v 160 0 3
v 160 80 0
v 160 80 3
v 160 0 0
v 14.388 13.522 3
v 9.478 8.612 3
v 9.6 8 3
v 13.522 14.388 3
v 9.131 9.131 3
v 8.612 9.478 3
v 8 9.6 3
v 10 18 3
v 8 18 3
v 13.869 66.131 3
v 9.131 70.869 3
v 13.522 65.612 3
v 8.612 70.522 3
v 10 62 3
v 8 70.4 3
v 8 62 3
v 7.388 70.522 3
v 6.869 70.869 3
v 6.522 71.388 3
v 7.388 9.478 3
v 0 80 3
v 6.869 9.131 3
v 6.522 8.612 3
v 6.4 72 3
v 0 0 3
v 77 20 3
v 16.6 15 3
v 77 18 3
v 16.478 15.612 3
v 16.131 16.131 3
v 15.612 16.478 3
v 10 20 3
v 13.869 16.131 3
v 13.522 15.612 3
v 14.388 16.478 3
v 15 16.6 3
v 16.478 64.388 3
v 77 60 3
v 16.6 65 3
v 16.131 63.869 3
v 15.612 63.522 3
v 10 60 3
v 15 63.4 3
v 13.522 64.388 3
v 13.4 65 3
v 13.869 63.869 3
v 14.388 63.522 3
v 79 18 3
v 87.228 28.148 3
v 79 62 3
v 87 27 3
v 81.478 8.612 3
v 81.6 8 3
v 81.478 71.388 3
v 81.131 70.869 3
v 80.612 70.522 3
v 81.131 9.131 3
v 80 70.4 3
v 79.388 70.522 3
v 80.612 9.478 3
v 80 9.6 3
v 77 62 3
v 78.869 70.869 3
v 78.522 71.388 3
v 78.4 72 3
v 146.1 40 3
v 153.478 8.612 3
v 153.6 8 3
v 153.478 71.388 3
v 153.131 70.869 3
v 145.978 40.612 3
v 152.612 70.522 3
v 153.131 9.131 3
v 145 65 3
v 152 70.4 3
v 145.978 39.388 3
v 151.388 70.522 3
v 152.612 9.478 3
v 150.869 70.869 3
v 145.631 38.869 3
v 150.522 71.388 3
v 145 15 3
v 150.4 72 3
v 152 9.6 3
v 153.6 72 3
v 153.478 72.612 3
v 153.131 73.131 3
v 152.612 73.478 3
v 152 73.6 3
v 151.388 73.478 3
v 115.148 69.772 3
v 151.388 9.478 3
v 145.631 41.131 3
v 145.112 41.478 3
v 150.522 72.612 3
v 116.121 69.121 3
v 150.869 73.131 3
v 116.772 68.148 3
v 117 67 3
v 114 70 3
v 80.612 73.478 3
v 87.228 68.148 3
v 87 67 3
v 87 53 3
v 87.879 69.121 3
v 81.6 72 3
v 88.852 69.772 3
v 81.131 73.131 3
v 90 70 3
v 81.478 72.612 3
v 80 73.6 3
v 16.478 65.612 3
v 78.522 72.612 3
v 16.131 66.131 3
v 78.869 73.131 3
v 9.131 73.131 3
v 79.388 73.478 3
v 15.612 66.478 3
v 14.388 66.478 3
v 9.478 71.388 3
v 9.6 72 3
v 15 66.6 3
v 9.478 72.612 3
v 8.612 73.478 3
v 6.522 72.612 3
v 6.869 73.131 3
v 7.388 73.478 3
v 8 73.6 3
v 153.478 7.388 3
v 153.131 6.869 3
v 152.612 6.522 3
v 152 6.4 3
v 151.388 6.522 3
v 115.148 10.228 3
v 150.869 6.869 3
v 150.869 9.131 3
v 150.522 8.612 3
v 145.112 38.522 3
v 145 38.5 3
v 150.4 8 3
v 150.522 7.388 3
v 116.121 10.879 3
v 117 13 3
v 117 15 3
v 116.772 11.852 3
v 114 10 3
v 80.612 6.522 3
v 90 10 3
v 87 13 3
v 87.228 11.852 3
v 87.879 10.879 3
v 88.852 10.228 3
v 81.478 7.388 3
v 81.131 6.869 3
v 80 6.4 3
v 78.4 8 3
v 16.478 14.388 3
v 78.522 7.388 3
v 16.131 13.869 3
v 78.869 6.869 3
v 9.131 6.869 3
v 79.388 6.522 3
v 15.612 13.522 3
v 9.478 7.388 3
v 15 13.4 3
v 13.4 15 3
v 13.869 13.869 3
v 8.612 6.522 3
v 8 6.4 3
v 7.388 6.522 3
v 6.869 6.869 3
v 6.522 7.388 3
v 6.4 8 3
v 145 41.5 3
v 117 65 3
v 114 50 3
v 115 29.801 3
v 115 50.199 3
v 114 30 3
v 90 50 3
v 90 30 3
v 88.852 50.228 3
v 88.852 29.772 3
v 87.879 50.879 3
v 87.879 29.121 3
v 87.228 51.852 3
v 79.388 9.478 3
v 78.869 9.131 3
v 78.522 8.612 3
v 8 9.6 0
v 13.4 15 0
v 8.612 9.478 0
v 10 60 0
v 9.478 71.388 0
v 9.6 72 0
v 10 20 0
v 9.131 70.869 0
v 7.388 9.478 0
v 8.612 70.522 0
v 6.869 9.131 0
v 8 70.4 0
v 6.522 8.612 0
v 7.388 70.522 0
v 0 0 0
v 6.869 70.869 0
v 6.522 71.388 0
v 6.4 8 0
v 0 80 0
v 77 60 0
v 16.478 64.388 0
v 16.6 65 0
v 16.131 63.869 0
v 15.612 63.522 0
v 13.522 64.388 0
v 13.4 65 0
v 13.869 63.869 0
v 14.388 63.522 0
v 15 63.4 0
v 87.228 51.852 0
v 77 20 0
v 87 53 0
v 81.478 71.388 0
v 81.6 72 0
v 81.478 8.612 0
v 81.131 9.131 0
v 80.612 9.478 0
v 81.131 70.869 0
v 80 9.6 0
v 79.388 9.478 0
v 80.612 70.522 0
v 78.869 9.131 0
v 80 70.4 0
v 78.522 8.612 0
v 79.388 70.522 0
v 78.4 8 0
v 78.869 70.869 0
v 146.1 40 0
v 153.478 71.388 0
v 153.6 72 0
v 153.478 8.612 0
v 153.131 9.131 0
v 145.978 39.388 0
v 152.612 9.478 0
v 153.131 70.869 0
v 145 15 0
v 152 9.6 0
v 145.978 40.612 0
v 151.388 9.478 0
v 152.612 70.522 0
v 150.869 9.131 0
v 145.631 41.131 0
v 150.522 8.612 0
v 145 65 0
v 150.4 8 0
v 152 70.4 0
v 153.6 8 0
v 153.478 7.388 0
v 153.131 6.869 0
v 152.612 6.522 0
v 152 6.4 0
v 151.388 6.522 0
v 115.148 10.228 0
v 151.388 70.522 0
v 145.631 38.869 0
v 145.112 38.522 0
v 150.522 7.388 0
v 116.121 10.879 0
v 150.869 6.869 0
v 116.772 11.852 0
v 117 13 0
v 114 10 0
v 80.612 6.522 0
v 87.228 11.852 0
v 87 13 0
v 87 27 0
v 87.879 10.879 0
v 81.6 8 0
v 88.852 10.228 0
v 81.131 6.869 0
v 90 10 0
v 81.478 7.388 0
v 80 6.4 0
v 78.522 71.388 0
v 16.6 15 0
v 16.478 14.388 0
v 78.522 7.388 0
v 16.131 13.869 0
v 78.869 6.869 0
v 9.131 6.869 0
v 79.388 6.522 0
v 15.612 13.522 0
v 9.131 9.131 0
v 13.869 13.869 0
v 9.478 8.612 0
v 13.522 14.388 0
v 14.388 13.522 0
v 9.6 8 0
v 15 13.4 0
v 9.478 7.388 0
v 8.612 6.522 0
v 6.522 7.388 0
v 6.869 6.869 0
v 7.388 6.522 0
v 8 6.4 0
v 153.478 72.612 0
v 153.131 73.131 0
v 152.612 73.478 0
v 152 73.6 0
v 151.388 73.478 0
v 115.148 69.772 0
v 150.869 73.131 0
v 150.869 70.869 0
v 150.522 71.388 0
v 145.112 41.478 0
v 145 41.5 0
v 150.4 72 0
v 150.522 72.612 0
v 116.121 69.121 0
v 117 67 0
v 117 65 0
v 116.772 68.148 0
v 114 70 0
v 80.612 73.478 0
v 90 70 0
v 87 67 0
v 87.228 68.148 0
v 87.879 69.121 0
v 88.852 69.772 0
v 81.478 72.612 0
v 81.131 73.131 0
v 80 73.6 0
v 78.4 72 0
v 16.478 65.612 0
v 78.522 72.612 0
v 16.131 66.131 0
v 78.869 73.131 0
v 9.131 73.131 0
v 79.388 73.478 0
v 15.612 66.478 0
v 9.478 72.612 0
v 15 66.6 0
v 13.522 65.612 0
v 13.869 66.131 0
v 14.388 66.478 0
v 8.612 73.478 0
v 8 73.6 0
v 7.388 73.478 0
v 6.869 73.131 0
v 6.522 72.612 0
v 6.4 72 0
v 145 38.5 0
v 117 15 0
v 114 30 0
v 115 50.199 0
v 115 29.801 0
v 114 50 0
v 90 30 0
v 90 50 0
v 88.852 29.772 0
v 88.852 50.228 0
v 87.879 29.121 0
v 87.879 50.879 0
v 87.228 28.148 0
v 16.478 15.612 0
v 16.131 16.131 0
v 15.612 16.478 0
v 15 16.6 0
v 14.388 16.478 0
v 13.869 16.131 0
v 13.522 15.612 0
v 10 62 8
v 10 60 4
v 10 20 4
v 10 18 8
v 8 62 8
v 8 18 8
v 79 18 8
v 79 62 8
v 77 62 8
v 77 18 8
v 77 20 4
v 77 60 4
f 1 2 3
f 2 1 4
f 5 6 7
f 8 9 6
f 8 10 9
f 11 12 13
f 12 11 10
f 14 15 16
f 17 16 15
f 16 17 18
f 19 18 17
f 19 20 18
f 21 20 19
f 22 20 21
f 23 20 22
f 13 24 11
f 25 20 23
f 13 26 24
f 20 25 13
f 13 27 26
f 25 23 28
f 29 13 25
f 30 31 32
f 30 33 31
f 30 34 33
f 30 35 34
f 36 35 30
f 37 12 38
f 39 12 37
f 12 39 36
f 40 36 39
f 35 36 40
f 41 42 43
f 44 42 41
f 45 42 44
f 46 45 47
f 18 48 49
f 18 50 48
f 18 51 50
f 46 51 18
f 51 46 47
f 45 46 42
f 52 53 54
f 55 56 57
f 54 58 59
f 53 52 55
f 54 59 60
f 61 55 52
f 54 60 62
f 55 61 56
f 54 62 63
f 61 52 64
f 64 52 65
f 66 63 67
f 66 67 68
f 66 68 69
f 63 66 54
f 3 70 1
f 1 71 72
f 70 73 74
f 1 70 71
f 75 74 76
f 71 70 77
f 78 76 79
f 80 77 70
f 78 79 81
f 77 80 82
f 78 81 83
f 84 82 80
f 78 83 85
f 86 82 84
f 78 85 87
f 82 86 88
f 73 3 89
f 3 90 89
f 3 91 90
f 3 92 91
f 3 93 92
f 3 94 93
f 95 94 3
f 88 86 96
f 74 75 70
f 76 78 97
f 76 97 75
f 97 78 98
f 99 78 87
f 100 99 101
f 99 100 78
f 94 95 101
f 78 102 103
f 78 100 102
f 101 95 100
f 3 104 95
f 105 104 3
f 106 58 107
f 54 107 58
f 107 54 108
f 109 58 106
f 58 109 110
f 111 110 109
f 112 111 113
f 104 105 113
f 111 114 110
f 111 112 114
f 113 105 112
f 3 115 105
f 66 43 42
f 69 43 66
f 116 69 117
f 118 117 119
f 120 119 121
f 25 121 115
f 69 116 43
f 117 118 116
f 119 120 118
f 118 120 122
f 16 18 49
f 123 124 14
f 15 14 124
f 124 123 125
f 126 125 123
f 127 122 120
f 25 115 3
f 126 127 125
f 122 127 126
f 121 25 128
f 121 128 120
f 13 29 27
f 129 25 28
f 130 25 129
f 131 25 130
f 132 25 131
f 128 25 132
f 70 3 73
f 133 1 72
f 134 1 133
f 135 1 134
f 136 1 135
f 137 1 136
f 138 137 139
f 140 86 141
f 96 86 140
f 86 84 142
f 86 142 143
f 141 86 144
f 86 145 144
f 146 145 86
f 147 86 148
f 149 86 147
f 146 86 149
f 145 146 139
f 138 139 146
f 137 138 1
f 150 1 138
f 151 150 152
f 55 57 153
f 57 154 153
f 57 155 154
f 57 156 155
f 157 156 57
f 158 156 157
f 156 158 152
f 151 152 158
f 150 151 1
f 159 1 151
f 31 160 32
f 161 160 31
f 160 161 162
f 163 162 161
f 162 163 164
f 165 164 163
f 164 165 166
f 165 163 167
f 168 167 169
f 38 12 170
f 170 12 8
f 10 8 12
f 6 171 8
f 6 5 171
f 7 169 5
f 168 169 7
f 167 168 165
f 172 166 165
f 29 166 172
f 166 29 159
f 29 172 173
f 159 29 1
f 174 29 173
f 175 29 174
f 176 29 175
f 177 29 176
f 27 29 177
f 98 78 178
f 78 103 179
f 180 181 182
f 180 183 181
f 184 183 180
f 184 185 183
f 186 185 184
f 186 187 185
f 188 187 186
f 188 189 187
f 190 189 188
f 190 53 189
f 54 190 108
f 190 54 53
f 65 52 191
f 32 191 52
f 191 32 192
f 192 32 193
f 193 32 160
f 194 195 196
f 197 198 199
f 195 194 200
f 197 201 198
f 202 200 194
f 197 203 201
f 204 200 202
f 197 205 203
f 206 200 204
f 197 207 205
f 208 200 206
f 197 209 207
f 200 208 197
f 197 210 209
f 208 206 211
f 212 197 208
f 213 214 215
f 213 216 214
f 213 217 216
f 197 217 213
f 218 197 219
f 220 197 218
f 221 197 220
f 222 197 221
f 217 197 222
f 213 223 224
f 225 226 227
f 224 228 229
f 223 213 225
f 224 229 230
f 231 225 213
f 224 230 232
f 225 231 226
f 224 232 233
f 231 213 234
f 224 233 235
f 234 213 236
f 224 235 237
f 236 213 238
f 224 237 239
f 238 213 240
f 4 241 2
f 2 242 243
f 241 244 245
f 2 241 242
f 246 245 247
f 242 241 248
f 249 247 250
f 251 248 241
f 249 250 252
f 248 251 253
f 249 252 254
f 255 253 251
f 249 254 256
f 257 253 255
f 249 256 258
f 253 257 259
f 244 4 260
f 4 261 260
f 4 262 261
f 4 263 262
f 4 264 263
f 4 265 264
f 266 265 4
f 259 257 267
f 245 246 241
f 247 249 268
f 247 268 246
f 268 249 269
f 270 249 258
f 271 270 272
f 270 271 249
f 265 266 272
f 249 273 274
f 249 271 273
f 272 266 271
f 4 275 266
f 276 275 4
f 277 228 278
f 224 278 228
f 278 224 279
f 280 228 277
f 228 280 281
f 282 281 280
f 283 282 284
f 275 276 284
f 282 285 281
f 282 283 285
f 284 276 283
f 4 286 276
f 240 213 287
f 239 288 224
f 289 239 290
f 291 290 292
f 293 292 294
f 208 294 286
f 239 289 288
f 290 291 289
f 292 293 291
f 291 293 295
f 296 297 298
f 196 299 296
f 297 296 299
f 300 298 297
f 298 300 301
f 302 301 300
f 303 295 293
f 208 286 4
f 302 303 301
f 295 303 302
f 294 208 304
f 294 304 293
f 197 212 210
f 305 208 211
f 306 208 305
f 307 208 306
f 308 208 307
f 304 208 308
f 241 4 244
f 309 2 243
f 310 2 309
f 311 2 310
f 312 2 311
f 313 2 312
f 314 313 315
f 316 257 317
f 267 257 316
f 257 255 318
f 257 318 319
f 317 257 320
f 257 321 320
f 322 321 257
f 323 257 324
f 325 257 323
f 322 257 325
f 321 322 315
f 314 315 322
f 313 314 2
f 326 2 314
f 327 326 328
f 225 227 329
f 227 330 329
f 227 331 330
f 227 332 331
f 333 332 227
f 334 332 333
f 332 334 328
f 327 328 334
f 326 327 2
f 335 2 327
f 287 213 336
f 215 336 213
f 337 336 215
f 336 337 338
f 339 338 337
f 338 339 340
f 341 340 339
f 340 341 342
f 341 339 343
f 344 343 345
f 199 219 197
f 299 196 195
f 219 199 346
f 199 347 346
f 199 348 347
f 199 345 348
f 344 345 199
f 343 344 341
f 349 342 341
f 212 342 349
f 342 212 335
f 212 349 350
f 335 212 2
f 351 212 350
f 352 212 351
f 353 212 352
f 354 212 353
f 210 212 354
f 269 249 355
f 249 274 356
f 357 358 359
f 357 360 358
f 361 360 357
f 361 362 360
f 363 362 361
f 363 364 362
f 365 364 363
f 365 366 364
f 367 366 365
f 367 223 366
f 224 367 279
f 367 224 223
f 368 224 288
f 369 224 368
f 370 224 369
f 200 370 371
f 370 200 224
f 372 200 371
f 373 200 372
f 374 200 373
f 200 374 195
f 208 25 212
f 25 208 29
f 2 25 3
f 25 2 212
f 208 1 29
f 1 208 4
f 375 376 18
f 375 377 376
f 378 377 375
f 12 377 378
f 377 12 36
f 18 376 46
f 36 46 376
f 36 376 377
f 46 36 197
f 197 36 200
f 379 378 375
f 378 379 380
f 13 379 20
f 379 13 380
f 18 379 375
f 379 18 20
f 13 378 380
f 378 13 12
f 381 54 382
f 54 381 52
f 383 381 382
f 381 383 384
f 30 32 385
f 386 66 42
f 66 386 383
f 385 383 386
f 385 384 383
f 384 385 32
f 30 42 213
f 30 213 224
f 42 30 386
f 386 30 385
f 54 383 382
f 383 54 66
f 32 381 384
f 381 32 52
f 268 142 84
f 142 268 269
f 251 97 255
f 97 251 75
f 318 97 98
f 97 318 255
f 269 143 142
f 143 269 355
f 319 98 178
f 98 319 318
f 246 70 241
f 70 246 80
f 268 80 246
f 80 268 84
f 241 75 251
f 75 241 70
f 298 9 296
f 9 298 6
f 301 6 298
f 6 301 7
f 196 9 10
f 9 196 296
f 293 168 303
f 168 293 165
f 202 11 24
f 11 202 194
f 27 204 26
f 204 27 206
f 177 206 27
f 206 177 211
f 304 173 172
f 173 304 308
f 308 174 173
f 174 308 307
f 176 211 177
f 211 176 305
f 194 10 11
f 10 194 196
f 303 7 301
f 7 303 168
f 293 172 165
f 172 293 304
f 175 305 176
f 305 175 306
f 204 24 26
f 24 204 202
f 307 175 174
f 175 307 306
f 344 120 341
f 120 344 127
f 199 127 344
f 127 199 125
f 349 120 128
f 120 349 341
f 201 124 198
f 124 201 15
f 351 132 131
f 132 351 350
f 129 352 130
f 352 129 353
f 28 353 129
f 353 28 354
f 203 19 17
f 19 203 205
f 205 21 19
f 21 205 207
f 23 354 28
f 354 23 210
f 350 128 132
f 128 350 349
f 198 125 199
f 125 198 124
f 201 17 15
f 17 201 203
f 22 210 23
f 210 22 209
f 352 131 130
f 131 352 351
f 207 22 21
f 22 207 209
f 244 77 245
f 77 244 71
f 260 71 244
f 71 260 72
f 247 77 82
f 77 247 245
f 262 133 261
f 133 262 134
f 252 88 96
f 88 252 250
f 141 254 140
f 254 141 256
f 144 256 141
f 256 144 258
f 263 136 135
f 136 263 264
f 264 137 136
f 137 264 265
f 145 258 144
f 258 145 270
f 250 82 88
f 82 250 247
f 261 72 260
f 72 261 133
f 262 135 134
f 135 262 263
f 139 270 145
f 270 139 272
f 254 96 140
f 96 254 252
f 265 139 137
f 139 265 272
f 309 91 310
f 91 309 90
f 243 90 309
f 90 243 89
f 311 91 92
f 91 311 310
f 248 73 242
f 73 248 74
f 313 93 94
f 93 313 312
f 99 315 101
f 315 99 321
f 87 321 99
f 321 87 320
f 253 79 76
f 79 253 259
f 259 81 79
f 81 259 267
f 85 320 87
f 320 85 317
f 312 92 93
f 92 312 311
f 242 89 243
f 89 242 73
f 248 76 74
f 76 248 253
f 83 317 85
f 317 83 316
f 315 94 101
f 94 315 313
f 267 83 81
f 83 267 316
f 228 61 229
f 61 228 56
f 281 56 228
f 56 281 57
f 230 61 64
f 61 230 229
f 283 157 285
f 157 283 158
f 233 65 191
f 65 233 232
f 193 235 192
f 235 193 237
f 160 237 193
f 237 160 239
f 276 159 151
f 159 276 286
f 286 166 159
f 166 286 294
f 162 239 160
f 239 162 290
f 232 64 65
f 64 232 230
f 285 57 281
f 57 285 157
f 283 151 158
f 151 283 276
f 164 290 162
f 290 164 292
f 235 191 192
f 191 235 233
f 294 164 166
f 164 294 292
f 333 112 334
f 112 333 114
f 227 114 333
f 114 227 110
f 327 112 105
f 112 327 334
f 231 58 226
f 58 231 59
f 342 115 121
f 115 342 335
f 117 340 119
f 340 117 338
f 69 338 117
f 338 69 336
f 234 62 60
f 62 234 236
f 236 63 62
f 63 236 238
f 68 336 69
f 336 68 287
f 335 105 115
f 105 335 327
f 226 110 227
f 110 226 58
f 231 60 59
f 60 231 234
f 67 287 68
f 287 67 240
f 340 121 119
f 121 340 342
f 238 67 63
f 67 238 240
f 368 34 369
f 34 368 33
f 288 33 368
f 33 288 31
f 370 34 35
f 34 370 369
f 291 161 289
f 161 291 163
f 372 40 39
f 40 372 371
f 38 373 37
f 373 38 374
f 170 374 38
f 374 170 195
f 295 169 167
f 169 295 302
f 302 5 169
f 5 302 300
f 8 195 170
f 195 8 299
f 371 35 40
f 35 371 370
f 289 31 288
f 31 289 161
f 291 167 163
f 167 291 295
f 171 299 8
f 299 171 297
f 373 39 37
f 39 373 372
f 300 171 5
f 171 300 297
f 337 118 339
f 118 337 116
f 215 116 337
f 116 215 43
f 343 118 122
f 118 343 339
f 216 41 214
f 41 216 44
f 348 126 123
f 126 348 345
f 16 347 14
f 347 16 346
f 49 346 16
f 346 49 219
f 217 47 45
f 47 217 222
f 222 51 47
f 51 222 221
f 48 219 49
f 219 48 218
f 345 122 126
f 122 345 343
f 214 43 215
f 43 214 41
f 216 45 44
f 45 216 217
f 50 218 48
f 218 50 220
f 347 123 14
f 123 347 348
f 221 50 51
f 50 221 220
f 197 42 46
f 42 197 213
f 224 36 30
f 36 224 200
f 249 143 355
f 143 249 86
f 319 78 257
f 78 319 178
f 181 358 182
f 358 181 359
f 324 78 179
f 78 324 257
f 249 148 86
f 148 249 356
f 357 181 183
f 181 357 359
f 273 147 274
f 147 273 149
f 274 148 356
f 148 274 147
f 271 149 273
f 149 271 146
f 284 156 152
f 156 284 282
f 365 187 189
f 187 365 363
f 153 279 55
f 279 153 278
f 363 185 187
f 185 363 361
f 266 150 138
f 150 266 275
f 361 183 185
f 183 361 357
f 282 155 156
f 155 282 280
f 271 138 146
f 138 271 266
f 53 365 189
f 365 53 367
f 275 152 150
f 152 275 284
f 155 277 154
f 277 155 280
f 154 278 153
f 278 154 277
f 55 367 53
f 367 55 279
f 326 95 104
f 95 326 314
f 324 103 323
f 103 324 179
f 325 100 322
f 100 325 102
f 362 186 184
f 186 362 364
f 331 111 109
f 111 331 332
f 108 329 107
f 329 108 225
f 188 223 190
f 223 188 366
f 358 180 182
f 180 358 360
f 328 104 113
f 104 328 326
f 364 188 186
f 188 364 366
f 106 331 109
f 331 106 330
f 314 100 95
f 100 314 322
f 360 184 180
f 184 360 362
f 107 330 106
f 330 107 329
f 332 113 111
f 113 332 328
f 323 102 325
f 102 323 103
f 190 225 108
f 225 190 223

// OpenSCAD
// ============================================
// ESP32 Rover - Lower Chassis Plate
// ============================================
// Design Specification v1.0
//
// This is the lower deck of the sandwich-plate
// chassis design. Houses battery and drivetrain.
// ============================================

// Main dimensions
chassis_length = 160;
chassis_width = 80;
chassis_thickness = 3;

// Battery dimensions (2× 18650 side-by-side)
battery_length = 67;
battery_width = 40;  // 2 × 18mm + 4mm clearance
battery_depth = 20;
battery_offset_x = 10;  // From front

// Motor mount (A2212)
motor_mount_x = chassis_length - 25;
motor_center_hole = 8;
motor_hole_spacing_1 = 16;  // First pattern
motor_hole_spacing_2 = 19;  // Second pattern

// Differential mount area
diff_width = 50;
diff_length = 30;
diff_offset_x = chassis_length - 45;

// Mounting holes
mount_hole_dia = 3.2;  // M3 clearance
mount_edge_offset = 8;

// Resolution
$fn = 32;

module lower_chassis() {
    difference() {
        union() {
            // Main plate
            cube([chassis_length, chassis_width, chassis_thickness]);

            // Battery retention walls
            translate([battery_offset_x - 2, (chassis_width - battery_width) / 2 - 2, 0])
                cube([2, battery_width + 4, chassis_thickness + 5]);
            translate([battery_offset_x + battery_length, (chassis_width - battery_width) / 2 - 2, 0])
                cube([2, battery_width + 4, chassis_thickness + 5]);
        }

        // Battery cutout
        translate([battery_offset_x, (chassis_width - battery_width) / 2, -1])
            cube([battery_length, battery_width, chassis_thickness + 2]);

        // Motor mount center hole
        translate([motor_mount_x, chassis_width / 2, -1])
            cylinder(d = motor_center_hole, h = chassis_thickness + 2);

        // Motor mount screw holes - Pattern 1 (16mm)
        for (angle = [0, 90, 180, 270]) {
            translate([motor_mount_x, chassis_width / 2, 0])
                rotate([0, 0, angle + 45])
                    translate([motor_hole_spacing_1 / 2, 0, -1])
                        cylinder(d = mount_hole_dia, h = chassis_thickness + 2, $fn = 16);
        }

        // Motor mount screw holes - Pattern 2 (19mm) - slotted for adjustment
        for (angle = [0, 180]) {
            translate([motor_mount_x, chassis_width / 2, 0])
                rotate([0, 0, angle])
                    translate([motor_hole_spacing_2 / 2, 0, -1])
                        hull() {
                            cylinder(d = mount_hole_dia, h = chassis_thickness + 2, $fn = 16);
                            translate([-3, 0, 0])
                                cylinder(d = mount_hole_dia, h = chassis_thickness + 2, $fn = 16);
                        }
        }

        // Deck mounting holes - corners
        for (x = [mount_edge_offset, chassis_length - mount_edge_offset]) {
            for (y = [mount_edge_offset, chassis_width - mount_edge_offset]) {
                translate([x, y, -1])
                    cylinder(d = mount_hole_dia, h = chassis_thickness + 2, $fn = 16);
            }
        }

        // Deck mounting holes - center edges
        for (x = [chassis_length / 2]) {
            for (y = [mount_edge_offset, chassis_width - mount_edge_offset]) {
                translate([x, y, -1])
                    cylinder(d = mount_hole_dia, h = chassis_thickness + 2, $fn = 16);
            }
        }

        // Differential mounting slots
        translate([diff_offset_x, (chassis_width - diff_width) / 2, -1])
            cube([diff_length, diff_width, chassis_thickness + 2]);

        // Weight reduction cutouts
        translate([battery_offset_x + battery_length + 10, 10, -1])
            rounded_rect(30, 20, chassis_thickness + 2, 3);
        translate([battery_offset_x + battery_length + 10, chassis_width - 30, -1])
            rounded_rect(30, 20, chassis_thickness + 2, 3);

        // Front steering mount holes
        for (y = [15, chassis_width - 15]) {
            translate([15, y, -1])
                cylinder(d = mount_hole_dia, h = chassis_thickness + 2, $fn = 16);
        }
    }
}

module rounded_rect(w, h, d, r) {
    hull() {
        translate([r, r, 0]) cylinder(r = r, h = d, $fn = 16);
        translate([w - r, r, 0]) cylinder(r = r, h = d, $fn = 16);
        translate([r, h - r, 0]) cylinder(r = r, h = d, $fn = 16);
        translate([w - r, h - r, 0]) cylinder(r = r, h = d, $fn = 16);
    }
}

// Render the part
lower_chassis();
